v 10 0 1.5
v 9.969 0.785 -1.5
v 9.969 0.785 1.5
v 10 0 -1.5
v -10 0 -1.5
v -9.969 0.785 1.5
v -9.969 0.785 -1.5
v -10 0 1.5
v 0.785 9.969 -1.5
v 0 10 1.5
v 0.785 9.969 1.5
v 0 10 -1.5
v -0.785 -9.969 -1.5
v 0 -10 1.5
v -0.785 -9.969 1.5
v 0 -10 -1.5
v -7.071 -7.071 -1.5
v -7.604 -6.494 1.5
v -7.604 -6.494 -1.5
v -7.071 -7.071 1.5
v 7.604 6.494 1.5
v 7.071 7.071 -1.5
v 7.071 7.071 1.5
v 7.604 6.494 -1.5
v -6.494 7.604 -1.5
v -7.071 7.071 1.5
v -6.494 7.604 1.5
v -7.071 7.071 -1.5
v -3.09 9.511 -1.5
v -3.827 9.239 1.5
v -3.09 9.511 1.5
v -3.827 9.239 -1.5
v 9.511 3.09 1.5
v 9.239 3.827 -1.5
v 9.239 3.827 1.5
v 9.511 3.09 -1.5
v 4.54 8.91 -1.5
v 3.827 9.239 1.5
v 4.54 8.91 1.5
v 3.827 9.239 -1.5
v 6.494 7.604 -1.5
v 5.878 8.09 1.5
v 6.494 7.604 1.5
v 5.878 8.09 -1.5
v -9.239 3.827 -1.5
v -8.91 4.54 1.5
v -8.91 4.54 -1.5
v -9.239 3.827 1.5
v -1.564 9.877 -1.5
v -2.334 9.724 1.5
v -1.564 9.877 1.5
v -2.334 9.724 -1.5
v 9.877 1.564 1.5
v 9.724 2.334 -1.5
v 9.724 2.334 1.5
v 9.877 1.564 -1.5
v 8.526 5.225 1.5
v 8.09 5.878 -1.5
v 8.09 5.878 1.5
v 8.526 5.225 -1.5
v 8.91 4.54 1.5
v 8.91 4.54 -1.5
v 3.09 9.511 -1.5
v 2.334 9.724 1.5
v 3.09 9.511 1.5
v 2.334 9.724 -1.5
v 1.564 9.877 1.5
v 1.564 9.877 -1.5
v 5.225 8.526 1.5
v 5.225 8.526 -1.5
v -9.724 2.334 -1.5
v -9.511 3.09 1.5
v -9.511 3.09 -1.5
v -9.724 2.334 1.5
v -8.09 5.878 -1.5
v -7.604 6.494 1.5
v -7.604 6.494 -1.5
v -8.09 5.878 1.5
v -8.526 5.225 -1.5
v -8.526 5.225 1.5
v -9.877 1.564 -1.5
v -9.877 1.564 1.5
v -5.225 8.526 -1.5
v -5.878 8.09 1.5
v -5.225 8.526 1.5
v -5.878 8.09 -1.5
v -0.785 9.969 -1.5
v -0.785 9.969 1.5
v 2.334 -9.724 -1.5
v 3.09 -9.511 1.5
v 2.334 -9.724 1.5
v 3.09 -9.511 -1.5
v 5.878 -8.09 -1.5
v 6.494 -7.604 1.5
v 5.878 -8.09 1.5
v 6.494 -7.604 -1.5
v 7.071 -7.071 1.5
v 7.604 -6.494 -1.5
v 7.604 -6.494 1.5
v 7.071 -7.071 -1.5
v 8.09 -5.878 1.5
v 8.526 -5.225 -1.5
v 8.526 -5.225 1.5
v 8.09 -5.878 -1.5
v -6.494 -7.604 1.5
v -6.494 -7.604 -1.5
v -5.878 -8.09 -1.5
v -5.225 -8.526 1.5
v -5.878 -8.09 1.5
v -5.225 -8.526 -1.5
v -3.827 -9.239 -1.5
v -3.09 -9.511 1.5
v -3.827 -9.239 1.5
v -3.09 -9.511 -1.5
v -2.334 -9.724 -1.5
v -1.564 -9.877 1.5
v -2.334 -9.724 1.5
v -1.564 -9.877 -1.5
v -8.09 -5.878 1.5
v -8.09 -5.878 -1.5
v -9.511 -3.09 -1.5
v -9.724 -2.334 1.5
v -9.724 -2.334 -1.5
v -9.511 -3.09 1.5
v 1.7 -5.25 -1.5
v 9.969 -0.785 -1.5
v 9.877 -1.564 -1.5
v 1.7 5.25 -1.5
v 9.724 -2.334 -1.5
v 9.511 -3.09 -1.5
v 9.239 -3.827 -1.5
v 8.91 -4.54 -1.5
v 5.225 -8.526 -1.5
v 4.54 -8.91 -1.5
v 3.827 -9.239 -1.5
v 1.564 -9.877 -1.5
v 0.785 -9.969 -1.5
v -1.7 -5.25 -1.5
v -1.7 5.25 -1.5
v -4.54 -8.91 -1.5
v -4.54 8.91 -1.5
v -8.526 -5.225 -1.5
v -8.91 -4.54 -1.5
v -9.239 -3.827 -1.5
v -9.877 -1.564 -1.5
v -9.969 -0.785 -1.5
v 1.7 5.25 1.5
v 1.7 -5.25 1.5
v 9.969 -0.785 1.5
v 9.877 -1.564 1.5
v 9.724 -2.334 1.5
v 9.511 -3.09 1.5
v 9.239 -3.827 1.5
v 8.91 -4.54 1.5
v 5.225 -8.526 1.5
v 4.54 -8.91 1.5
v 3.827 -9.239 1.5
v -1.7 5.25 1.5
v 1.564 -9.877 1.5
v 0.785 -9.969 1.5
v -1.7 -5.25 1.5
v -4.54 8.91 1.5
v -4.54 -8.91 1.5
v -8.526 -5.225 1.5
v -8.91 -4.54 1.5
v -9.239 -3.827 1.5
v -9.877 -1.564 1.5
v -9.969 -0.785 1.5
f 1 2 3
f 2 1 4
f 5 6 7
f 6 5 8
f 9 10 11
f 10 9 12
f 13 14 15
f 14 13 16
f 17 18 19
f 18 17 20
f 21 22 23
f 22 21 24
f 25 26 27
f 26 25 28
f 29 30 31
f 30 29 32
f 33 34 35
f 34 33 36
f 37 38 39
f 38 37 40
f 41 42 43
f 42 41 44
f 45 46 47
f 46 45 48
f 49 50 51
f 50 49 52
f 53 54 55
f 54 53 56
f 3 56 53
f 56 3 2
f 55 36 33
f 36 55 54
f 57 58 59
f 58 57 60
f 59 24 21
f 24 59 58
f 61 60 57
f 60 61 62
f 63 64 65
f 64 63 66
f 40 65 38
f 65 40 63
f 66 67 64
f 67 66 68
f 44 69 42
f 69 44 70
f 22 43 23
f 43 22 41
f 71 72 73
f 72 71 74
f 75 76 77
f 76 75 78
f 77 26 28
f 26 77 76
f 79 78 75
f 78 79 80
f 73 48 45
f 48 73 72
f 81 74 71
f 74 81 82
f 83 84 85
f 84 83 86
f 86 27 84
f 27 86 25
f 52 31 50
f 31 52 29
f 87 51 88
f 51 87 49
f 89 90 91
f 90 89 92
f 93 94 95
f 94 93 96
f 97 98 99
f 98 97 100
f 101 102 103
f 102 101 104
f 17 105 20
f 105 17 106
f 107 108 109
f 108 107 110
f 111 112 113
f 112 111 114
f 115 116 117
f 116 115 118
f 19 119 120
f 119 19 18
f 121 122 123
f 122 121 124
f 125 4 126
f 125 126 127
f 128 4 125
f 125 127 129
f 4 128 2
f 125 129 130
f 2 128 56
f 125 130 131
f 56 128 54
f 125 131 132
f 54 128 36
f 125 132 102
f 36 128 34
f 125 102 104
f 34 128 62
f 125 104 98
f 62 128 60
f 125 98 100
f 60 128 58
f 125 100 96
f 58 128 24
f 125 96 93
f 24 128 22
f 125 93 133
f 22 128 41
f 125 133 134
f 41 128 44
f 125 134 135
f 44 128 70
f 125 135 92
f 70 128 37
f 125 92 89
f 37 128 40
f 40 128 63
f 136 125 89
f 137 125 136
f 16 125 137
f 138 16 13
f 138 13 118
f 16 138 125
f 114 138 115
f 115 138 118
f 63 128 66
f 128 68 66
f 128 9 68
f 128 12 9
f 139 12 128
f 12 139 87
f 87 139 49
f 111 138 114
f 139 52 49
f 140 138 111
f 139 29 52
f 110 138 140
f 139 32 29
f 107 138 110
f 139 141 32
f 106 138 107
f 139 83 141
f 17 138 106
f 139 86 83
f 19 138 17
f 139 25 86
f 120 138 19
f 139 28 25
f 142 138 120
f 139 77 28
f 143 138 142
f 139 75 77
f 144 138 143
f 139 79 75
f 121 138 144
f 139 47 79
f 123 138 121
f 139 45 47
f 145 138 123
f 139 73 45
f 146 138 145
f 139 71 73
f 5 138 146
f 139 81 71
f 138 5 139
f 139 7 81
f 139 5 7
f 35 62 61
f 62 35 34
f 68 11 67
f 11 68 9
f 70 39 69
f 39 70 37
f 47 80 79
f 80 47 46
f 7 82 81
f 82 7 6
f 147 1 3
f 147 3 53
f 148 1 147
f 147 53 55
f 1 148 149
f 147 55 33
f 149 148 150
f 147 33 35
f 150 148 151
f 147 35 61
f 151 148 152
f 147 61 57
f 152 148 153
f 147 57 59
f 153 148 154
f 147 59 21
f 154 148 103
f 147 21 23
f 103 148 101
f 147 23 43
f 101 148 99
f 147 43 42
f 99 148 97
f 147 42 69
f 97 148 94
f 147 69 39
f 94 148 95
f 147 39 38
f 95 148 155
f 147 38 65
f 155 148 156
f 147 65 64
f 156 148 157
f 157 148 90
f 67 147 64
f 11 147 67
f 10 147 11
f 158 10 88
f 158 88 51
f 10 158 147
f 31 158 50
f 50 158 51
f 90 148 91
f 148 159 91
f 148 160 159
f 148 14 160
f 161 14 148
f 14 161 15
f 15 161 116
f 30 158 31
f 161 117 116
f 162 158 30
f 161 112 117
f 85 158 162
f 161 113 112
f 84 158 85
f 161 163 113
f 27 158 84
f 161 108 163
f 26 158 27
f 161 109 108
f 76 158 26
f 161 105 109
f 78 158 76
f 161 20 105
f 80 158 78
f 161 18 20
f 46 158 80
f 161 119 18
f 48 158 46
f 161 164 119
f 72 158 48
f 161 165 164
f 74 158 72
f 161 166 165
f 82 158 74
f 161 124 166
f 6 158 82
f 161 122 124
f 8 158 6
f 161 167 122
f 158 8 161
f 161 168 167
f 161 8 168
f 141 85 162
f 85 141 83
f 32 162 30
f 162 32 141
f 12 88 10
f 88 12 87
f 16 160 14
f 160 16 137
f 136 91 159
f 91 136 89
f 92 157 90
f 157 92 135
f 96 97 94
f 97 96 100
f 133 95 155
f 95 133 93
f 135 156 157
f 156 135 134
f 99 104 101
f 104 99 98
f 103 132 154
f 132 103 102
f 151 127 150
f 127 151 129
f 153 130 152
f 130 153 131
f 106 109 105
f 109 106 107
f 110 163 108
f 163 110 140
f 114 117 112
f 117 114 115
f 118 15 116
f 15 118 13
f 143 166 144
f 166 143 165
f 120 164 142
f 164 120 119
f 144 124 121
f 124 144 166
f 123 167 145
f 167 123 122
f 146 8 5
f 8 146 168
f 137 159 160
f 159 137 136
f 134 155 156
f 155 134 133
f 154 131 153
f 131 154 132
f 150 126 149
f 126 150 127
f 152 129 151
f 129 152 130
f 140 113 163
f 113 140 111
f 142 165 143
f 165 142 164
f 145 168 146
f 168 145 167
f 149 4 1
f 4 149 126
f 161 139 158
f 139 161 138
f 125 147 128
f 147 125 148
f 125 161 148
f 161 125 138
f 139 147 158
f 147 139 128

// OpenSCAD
 
 $fn=80; 
  difference() {      
cylinder(h = 3, r1 = 10, r2 = 10, center = true);   
   
   cube(size = [3.4,10.5,10], center = true);     
 }
